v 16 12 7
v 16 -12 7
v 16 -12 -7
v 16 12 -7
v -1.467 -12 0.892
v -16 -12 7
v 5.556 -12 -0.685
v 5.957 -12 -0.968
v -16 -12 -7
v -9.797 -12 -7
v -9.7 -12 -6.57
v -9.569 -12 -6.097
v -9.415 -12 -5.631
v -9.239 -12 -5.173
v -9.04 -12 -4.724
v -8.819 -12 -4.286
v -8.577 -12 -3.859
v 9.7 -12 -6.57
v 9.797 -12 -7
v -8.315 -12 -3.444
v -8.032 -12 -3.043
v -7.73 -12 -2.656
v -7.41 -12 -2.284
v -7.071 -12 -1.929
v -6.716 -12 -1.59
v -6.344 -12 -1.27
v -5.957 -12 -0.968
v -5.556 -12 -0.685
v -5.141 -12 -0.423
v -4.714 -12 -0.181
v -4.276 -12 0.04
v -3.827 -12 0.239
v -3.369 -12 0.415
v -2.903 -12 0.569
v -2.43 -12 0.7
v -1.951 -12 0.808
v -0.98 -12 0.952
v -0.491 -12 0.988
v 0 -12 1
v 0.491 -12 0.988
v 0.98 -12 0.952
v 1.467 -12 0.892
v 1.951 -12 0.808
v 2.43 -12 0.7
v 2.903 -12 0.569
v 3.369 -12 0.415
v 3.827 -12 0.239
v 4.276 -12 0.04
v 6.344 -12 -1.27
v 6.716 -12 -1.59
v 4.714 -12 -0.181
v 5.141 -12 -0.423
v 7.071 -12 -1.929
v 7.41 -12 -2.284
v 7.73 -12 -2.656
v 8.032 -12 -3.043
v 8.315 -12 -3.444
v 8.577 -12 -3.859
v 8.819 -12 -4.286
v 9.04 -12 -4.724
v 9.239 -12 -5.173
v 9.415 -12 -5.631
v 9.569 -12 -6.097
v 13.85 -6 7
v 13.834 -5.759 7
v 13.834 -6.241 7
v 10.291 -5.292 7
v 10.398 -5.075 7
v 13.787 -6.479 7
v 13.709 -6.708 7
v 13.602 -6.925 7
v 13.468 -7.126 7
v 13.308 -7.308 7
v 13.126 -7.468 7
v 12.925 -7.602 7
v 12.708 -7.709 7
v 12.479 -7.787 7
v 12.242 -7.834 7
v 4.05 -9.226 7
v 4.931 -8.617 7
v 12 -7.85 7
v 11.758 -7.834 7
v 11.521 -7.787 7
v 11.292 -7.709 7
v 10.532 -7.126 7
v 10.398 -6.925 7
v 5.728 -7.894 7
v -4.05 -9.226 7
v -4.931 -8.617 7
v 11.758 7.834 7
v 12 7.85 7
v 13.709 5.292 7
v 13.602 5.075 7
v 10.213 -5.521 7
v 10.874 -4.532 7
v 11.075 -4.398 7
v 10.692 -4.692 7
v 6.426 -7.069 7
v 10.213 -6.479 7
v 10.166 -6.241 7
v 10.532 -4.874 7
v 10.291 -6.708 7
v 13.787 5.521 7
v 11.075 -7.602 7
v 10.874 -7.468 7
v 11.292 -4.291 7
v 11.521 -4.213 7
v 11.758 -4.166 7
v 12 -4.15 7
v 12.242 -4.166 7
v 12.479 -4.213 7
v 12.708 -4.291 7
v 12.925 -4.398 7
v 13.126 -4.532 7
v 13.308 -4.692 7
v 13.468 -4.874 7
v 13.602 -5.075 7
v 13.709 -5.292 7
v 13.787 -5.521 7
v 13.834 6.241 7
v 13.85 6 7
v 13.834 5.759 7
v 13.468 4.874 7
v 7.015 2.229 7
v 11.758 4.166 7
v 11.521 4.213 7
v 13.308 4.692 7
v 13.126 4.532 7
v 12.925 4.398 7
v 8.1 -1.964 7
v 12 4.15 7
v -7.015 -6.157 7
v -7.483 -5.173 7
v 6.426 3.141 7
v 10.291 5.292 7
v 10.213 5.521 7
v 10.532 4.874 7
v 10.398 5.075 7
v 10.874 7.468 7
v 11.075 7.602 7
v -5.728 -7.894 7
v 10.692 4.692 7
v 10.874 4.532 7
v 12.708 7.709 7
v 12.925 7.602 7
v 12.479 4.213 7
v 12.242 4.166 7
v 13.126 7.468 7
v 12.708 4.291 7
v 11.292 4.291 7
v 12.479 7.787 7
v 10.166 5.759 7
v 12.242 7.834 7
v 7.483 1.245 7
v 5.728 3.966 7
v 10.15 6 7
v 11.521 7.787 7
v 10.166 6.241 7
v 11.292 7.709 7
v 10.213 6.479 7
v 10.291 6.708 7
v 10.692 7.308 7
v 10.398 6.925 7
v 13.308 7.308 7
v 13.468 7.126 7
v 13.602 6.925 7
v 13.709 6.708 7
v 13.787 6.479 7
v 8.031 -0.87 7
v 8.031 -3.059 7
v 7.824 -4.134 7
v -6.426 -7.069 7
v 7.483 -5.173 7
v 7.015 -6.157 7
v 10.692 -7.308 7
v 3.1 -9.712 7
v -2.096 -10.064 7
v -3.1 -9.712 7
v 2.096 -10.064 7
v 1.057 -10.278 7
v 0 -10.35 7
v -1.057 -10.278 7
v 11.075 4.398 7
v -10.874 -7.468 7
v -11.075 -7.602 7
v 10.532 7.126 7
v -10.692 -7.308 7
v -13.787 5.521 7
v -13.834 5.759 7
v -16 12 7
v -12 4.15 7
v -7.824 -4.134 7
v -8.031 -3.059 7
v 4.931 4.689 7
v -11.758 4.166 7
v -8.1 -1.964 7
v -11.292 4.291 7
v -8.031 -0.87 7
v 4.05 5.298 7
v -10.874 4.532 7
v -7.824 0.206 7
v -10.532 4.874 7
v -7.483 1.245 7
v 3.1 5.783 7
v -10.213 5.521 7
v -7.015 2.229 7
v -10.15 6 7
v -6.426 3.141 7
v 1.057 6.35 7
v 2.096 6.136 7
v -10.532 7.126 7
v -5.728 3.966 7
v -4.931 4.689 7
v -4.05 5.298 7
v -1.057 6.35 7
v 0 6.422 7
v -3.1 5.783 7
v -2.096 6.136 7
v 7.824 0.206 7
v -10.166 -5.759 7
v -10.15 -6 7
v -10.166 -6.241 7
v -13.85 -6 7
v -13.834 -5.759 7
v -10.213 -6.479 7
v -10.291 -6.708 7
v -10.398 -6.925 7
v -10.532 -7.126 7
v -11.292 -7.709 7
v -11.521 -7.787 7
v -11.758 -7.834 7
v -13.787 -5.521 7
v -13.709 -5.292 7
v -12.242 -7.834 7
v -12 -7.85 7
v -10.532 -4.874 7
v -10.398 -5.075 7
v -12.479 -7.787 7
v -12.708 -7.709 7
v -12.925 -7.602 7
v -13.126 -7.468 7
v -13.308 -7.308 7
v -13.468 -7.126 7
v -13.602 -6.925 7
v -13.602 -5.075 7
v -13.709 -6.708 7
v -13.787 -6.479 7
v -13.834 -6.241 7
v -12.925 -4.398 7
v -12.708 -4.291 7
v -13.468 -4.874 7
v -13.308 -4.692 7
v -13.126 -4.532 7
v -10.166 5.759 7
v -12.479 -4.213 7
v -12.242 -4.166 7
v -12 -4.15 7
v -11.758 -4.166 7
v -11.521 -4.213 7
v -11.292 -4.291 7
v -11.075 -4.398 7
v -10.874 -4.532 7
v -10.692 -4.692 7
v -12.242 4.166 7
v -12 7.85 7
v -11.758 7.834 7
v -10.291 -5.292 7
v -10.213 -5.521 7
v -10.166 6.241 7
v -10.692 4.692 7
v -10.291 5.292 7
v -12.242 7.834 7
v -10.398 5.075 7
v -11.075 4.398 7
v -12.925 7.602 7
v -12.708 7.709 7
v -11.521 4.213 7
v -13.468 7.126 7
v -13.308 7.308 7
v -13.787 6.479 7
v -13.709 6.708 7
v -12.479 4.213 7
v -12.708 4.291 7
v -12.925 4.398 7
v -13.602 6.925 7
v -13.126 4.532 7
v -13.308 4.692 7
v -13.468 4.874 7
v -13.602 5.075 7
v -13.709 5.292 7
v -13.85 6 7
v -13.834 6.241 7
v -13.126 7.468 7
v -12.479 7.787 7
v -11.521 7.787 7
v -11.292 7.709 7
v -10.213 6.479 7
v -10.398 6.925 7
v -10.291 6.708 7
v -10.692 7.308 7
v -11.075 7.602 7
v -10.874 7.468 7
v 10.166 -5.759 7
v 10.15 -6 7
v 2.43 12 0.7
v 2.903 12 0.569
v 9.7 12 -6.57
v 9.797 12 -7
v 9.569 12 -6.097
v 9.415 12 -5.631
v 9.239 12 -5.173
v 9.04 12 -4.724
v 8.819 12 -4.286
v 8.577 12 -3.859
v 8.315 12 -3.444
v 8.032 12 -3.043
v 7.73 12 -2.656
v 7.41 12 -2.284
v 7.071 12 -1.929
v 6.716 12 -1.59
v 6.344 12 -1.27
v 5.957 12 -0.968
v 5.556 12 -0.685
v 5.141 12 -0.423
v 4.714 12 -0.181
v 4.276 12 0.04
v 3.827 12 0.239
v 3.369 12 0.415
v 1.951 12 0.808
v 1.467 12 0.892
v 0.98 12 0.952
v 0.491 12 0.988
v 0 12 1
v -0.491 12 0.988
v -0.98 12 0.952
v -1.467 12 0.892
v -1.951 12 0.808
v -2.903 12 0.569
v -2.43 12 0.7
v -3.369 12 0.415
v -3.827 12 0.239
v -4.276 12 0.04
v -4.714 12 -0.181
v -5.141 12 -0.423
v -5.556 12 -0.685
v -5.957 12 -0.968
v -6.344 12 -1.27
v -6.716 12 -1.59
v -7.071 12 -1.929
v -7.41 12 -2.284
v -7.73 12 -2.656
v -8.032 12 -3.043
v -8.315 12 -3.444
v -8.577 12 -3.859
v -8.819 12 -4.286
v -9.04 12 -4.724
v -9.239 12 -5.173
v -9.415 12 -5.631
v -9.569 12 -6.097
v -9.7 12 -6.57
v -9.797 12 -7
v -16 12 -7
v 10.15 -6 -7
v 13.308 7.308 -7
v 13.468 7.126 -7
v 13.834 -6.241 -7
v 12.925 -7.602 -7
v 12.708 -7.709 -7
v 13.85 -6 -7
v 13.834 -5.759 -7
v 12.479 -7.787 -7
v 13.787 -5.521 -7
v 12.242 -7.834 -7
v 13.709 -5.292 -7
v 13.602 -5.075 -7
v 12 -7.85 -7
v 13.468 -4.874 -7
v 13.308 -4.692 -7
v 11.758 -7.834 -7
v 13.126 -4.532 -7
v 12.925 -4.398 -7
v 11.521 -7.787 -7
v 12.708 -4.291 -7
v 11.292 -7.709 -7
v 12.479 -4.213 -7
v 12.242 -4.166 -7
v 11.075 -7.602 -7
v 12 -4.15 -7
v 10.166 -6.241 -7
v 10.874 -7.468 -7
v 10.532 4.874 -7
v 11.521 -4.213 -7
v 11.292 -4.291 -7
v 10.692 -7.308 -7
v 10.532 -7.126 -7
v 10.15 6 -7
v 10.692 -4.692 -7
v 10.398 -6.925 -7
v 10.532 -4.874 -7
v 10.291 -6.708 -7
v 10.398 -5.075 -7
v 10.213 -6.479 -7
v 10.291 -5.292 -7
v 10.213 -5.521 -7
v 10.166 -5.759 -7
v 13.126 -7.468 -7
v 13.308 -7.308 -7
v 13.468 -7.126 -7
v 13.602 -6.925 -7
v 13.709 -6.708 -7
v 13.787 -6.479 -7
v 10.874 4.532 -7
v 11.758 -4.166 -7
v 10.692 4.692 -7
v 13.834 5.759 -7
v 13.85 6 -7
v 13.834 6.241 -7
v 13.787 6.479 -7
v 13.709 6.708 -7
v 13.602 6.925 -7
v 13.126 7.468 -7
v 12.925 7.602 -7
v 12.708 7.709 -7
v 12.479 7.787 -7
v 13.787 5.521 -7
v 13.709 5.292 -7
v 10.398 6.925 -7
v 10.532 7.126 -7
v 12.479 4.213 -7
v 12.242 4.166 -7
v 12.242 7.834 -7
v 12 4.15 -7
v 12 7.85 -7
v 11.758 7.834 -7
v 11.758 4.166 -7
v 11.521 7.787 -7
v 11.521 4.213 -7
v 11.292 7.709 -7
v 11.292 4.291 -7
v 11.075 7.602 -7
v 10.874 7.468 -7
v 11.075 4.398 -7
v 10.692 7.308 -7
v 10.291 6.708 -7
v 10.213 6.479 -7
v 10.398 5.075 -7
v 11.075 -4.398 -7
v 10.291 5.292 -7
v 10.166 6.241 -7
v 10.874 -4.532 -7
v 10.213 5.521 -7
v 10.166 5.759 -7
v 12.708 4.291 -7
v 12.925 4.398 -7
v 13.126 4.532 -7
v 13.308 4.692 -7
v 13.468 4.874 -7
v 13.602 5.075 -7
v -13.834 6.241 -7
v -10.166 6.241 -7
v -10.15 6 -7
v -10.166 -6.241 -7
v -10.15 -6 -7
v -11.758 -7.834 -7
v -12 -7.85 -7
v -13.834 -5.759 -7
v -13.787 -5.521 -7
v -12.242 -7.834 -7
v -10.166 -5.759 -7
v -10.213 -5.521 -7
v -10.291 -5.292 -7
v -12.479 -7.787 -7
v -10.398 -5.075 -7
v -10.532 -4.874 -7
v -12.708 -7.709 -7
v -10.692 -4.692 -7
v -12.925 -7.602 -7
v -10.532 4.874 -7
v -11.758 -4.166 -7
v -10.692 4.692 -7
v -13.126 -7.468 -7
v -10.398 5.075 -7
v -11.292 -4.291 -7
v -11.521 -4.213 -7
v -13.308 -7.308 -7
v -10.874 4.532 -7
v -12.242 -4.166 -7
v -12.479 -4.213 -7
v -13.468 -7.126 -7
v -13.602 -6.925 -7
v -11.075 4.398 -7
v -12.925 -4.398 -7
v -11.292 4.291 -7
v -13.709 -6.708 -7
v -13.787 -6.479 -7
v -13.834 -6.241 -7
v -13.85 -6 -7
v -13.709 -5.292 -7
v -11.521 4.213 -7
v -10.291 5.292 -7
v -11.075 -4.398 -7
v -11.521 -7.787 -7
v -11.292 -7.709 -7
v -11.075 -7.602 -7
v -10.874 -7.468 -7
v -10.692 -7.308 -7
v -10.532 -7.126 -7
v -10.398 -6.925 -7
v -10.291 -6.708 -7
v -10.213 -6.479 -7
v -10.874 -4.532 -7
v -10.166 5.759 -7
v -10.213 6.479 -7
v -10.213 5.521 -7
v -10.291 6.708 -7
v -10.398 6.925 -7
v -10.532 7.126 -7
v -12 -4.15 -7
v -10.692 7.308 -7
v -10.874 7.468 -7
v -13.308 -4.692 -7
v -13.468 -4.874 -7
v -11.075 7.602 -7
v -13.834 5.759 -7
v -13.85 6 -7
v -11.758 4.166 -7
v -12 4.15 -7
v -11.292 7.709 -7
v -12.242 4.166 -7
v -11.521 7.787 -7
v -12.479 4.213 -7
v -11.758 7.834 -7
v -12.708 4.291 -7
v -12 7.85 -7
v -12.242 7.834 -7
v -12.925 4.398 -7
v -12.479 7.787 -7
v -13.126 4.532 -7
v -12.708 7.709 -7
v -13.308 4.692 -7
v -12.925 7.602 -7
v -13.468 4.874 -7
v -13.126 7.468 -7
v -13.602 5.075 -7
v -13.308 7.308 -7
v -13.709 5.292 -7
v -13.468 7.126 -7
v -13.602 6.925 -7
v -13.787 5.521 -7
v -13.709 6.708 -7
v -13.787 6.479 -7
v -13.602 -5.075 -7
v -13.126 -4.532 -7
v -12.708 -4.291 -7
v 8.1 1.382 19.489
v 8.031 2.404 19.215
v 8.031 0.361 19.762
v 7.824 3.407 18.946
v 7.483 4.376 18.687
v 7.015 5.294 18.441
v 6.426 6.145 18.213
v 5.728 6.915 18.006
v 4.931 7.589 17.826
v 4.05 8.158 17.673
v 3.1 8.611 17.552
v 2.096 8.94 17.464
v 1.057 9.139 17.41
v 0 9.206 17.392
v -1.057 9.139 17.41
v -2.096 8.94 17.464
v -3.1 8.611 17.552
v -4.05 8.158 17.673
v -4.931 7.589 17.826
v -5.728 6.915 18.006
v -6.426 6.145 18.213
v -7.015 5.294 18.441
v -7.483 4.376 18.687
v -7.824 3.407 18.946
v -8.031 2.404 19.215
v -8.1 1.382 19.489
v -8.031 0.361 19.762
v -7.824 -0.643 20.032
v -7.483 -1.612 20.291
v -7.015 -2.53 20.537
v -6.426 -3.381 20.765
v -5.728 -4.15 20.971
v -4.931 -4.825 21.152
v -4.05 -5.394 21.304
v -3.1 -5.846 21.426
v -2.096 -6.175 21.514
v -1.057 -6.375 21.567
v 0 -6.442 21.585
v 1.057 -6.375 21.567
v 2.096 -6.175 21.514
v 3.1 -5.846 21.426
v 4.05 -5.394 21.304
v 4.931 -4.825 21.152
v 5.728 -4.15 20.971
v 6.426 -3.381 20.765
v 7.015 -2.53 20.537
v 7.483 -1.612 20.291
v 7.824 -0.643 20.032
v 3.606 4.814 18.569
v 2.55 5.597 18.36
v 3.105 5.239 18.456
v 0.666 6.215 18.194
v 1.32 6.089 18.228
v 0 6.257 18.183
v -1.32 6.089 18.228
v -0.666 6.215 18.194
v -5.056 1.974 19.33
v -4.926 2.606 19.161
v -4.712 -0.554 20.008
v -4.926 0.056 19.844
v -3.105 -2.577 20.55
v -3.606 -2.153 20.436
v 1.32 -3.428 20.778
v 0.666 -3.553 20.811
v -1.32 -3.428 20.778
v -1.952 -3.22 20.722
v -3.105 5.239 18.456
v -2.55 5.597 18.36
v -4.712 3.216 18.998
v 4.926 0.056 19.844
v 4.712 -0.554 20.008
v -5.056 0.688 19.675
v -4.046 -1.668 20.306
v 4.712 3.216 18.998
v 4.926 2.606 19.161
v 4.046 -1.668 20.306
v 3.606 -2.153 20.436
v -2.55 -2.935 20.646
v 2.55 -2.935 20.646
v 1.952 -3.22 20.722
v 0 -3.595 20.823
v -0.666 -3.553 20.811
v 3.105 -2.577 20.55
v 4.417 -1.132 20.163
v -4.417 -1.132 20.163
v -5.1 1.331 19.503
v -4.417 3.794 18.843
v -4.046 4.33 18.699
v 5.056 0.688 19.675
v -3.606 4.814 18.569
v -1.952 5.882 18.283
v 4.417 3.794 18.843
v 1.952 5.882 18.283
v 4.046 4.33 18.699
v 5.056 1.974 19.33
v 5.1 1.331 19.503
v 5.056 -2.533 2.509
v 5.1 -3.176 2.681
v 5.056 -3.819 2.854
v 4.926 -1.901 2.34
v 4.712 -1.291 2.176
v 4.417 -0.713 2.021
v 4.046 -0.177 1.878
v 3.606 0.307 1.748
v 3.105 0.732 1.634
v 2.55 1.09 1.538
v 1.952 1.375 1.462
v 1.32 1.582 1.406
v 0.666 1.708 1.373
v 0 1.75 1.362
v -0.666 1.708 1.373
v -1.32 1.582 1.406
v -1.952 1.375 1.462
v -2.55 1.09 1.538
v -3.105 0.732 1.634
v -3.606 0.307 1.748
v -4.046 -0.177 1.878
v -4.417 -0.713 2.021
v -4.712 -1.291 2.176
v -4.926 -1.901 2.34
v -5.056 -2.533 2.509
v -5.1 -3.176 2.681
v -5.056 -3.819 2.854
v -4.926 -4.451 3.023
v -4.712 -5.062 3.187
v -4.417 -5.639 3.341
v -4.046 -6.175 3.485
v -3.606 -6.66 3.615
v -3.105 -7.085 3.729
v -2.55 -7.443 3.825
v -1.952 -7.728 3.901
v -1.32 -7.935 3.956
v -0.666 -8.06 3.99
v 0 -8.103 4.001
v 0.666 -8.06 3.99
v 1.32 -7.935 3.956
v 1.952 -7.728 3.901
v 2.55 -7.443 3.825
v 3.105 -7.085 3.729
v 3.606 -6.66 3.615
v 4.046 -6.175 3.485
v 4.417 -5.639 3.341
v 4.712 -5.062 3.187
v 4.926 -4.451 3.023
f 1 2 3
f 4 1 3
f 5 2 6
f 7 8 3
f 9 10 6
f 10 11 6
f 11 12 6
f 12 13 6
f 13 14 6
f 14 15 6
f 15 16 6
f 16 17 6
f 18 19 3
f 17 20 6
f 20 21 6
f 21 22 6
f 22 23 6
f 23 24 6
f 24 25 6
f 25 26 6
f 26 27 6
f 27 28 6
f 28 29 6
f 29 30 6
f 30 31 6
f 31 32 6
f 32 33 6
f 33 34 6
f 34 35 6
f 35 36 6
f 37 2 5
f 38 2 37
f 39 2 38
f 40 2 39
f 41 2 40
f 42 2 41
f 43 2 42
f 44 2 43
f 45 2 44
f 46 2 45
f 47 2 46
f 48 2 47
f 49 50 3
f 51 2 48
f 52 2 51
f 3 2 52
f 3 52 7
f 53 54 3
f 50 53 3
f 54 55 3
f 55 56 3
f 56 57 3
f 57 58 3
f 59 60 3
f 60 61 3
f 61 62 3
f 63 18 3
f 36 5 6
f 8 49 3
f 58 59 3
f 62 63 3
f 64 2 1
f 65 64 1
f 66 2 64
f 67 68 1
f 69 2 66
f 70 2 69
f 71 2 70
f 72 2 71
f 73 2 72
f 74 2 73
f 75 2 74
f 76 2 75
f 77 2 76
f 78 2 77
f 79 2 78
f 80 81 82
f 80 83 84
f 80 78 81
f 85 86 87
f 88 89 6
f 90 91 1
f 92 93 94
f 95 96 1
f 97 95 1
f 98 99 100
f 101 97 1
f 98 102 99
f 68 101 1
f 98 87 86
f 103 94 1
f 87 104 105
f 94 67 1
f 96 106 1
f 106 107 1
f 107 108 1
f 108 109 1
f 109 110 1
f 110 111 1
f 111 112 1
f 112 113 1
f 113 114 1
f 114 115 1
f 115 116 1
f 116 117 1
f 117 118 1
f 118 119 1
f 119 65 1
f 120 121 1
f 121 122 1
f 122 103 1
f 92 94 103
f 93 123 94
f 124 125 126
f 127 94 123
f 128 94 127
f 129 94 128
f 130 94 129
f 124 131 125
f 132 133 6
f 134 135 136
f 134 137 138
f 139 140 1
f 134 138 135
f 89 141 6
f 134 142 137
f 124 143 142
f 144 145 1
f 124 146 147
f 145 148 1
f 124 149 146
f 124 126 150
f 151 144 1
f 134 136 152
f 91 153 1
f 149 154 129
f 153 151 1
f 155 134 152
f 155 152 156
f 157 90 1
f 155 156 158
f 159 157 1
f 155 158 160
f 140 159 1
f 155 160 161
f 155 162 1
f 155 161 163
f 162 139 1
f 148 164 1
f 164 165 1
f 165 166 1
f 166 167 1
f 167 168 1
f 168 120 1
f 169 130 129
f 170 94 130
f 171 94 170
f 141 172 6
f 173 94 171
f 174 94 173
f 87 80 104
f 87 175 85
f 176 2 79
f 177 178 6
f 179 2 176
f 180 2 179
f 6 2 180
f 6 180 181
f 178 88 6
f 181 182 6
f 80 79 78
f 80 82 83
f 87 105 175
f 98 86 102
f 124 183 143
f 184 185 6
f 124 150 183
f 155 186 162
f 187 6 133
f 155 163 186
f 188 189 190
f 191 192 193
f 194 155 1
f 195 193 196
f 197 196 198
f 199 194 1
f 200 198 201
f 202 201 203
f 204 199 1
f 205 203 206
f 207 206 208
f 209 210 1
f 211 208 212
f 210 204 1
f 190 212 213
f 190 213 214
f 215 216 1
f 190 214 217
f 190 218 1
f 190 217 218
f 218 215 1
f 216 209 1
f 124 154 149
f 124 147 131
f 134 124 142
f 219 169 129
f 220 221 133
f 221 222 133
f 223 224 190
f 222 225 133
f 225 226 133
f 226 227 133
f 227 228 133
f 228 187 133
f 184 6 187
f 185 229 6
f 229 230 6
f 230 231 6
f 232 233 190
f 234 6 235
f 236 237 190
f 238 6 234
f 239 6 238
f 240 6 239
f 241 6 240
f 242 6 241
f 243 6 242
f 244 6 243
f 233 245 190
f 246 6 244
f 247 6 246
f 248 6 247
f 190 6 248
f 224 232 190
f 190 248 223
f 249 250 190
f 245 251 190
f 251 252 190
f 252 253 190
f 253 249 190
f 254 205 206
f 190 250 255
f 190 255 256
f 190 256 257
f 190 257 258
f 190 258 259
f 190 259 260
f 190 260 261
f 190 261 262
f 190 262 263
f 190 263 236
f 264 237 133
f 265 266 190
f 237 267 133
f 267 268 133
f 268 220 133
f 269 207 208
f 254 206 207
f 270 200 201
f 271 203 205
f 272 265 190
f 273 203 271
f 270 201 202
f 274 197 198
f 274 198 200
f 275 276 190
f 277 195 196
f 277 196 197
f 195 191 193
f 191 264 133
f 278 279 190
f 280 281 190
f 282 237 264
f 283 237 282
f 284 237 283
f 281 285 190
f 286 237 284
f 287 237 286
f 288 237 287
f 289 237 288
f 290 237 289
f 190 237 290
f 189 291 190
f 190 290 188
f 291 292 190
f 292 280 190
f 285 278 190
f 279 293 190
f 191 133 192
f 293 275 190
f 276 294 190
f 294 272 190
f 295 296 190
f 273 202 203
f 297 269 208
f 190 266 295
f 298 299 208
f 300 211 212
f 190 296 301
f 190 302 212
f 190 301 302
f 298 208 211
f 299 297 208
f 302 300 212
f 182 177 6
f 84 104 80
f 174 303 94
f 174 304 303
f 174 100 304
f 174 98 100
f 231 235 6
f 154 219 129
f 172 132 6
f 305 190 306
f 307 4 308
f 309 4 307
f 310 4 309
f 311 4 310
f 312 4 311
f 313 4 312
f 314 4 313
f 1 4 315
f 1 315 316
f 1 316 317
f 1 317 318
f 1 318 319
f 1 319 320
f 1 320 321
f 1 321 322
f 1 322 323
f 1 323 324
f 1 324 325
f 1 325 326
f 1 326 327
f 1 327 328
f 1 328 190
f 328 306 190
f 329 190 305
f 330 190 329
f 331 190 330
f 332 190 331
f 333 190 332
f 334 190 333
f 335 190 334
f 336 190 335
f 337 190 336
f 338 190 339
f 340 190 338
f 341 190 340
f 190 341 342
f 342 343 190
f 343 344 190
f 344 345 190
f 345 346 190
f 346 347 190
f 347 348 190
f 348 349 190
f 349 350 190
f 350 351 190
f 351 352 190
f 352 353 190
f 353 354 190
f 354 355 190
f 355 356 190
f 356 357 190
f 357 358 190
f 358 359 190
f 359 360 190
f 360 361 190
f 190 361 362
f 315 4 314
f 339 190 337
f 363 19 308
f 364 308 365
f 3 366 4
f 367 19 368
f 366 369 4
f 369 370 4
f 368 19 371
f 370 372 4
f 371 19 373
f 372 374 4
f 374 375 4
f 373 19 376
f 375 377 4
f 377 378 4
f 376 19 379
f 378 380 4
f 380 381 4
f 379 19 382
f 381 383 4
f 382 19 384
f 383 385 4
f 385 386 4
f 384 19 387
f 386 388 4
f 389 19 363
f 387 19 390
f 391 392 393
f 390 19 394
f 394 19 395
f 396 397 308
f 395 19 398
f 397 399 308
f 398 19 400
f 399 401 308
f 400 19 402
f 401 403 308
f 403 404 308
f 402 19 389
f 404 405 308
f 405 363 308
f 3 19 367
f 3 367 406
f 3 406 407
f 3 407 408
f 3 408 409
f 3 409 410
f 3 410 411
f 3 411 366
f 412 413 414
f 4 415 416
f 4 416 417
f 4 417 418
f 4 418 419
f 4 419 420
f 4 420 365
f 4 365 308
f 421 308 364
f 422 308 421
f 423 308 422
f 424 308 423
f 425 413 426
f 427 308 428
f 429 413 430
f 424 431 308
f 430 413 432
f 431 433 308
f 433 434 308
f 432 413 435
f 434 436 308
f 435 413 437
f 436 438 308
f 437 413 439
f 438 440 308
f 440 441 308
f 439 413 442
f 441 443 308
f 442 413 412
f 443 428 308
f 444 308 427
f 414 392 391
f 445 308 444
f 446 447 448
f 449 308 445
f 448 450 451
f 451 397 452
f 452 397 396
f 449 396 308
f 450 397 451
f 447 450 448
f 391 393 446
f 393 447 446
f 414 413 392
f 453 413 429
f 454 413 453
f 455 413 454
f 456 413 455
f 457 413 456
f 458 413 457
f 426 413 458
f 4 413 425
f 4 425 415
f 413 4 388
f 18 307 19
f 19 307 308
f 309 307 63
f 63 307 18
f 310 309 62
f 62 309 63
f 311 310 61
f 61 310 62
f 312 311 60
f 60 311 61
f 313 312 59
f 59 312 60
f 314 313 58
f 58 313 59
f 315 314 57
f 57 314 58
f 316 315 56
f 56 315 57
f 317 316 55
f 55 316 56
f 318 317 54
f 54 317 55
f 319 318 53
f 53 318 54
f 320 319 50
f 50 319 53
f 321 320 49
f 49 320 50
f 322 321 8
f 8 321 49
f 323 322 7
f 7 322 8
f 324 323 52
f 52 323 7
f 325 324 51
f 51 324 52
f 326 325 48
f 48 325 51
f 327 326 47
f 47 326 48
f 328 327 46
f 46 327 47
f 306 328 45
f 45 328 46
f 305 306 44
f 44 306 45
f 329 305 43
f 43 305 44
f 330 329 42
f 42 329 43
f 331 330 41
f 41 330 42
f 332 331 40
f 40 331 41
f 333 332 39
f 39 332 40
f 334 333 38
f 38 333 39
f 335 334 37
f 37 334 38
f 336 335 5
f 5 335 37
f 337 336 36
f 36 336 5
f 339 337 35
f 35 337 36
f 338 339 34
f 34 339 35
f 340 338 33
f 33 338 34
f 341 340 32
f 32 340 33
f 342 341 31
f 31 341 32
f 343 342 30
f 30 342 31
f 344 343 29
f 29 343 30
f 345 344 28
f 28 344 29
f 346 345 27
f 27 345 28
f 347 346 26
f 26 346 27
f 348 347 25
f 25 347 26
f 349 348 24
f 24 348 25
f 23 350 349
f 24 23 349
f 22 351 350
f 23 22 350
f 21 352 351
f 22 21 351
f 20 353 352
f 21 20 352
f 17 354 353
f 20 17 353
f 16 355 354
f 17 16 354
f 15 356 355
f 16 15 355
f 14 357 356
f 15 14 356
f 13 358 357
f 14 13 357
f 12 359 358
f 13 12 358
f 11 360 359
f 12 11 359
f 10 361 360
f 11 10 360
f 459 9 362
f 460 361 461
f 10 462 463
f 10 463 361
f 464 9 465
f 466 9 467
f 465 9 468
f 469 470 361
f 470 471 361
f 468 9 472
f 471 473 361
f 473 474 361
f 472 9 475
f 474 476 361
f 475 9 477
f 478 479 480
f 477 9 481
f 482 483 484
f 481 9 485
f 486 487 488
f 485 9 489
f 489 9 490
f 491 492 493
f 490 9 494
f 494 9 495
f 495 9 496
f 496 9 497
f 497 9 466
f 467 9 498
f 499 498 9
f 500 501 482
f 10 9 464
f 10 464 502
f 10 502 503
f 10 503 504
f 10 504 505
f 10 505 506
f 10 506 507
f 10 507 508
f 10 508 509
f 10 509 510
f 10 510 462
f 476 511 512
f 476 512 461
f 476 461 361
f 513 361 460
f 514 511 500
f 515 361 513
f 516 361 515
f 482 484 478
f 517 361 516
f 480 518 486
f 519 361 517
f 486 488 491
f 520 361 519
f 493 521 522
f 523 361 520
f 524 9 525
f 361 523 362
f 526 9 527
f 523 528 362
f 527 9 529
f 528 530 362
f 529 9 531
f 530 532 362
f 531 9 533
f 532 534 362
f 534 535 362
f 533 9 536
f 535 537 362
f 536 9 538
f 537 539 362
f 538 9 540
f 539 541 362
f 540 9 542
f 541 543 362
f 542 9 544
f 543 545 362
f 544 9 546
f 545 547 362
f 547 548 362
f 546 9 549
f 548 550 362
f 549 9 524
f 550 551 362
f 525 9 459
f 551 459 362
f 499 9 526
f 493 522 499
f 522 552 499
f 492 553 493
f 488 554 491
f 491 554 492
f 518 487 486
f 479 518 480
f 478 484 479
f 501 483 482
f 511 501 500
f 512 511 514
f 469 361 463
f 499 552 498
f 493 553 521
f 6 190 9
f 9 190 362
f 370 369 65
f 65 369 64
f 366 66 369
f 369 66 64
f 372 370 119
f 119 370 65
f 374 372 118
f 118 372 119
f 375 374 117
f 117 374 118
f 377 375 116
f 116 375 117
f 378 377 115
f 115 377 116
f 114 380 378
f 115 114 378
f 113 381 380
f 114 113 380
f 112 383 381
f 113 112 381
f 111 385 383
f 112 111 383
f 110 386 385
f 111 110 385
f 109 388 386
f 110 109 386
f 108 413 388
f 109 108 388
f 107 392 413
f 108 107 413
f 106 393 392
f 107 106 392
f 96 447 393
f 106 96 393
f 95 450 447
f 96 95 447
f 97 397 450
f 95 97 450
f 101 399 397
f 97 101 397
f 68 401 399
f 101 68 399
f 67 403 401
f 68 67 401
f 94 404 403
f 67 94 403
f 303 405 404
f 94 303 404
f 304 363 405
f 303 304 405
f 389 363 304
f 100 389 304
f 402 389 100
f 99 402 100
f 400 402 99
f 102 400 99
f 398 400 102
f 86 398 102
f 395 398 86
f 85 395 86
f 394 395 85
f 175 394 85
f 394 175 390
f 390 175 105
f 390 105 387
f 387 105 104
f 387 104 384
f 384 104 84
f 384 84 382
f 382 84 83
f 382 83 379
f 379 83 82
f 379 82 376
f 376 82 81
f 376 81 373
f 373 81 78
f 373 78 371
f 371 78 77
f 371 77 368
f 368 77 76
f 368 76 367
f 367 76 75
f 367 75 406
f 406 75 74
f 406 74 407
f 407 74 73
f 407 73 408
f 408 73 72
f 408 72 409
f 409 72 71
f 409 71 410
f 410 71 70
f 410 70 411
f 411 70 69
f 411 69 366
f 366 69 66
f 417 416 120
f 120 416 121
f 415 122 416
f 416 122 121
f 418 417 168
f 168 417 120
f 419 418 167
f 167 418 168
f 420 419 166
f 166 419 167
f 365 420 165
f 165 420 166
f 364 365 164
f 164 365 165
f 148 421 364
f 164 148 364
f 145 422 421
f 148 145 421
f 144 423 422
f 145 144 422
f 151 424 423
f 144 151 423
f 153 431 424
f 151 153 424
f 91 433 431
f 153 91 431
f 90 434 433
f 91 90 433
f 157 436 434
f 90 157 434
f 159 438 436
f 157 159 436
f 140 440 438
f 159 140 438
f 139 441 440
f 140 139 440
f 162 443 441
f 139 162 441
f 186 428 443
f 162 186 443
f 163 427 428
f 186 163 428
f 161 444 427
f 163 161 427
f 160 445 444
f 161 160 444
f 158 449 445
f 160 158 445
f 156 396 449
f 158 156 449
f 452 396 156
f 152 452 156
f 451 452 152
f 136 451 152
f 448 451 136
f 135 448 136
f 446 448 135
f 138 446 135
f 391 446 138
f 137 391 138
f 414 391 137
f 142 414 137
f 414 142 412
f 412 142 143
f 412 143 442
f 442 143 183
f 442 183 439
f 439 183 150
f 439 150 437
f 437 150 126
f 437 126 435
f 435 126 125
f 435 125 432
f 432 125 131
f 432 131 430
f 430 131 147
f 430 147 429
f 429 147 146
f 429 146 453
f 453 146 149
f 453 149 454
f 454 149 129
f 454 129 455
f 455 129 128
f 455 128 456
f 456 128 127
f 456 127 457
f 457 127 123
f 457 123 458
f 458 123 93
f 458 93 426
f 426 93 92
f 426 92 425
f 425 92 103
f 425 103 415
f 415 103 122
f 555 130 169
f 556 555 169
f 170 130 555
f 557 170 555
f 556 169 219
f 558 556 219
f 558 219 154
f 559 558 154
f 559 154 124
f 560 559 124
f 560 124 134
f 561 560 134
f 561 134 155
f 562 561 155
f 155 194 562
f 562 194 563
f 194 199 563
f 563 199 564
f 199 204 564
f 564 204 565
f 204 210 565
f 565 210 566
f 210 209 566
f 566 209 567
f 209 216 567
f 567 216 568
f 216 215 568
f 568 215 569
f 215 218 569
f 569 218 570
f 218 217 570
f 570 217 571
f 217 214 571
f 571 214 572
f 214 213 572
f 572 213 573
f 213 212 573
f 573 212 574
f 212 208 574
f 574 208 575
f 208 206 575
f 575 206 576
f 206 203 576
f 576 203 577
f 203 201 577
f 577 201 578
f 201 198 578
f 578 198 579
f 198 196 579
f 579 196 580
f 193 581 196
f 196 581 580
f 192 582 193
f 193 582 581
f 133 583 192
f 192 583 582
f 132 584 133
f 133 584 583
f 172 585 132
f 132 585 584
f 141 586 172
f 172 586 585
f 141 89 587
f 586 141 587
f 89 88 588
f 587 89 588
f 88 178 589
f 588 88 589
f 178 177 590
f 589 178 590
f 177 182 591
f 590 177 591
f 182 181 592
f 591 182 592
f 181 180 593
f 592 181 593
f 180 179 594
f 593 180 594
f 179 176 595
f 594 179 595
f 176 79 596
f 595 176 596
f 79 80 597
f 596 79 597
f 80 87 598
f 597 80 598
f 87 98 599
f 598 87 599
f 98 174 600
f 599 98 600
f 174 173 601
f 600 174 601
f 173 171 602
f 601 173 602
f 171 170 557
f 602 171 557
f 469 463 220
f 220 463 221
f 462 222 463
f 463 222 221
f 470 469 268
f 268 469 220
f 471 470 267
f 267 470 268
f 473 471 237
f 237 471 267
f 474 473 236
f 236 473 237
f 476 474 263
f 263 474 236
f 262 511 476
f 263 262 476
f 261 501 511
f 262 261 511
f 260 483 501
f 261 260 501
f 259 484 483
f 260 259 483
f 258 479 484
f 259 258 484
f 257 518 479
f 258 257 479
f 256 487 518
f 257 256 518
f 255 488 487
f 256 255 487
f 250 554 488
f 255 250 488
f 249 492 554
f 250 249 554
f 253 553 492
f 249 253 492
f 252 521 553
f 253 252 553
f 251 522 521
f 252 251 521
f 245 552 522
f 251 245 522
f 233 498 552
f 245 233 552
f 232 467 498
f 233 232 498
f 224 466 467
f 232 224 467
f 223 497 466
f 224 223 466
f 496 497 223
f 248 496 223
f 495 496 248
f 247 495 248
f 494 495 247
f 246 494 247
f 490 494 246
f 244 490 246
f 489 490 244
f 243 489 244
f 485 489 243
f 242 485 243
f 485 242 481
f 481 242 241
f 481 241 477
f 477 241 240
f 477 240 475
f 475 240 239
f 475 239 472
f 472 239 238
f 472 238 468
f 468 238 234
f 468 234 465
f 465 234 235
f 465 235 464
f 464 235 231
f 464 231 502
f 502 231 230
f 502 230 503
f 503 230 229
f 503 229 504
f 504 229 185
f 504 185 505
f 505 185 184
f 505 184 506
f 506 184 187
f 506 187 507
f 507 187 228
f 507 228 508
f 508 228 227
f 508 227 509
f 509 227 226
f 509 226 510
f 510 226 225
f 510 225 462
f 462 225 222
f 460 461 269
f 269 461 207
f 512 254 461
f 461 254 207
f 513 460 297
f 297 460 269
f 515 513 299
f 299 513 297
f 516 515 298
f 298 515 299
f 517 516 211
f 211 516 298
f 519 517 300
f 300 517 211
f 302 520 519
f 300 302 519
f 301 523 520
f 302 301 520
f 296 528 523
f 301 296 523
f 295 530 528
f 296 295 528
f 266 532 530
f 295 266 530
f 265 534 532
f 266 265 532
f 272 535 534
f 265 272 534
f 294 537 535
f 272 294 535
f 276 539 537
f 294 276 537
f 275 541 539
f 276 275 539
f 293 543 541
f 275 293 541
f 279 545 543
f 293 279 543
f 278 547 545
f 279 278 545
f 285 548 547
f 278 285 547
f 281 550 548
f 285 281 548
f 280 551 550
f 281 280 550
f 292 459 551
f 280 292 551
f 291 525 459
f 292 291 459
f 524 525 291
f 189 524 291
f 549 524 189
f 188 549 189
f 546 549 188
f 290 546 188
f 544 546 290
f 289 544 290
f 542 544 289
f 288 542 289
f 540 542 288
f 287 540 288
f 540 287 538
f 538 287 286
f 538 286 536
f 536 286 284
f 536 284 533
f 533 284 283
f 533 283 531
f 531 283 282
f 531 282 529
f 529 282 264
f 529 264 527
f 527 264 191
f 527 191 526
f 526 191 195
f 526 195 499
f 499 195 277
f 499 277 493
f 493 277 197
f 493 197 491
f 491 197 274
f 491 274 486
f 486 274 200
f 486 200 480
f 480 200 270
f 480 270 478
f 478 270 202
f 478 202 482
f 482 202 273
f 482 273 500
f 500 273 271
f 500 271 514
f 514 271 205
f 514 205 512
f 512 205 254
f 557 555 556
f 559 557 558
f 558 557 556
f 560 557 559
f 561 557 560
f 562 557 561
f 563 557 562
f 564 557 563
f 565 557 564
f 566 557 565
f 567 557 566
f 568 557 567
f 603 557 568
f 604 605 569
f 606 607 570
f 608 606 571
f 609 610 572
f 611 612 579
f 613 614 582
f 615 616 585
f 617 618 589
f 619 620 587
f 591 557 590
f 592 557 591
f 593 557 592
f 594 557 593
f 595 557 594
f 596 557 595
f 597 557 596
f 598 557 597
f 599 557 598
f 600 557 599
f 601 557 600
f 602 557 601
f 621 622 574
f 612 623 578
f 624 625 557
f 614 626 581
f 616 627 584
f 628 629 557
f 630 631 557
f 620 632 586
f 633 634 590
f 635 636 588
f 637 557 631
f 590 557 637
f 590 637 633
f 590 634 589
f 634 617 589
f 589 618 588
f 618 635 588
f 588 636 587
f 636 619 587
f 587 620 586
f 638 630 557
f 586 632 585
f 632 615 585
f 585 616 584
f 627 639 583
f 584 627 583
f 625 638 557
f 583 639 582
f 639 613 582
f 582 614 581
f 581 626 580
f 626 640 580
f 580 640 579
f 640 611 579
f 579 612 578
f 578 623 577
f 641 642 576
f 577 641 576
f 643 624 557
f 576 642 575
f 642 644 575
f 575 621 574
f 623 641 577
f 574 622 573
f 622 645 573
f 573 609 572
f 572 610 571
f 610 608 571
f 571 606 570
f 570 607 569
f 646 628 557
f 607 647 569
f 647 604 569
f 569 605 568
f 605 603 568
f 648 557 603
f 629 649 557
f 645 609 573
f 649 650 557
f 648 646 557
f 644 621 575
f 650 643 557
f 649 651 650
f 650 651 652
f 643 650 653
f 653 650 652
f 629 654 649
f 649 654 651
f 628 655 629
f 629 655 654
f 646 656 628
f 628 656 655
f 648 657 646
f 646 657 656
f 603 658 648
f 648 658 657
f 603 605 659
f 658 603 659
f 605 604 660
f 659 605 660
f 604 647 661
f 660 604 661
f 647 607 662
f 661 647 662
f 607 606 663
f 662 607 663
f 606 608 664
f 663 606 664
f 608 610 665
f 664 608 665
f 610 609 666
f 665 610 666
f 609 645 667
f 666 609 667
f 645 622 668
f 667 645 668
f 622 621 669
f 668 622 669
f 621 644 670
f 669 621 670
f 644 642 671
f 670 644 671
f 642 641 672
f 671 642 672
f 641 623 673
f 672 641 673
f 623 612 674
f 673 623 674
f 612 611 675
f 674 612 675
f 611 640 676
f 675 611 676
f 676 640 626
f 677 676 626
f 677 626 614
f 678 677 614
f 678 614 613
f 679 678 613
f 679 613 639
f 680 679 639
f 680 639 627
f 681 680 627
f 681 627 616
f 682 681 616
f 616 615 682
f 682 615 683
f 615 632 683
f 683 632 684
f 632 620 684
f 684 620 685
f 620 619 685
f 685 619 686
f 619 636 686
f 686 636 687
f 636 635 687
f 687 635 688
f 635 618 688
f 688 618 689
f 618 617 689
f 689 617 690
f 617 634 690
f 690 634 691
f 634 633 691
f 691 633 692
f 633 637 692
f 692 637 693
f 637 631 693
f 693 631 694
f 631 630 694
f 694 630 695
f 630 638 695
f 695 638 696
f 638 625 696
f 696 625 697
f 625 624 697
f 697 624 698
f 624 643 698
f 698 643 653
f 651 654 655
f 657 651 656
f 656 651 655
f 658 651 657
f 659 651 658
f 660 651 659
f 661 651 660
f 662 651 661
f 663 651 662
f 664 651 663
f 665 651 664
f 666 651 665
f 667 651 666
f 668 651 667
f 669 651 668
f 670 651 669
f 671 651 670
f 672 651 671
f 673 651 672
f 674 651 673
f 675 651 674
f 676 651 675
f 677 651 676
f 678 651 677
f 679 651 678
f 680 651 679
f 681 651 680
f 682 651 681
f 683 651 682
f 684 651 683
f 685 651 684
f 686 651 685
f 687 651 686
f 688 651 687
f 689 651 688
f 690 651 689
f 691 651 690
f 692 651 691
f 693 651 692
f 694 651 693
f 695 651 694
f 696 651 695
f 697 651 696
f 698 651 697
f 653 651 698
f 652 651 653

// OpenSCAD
module clamp_body()
{
screw_hole_r=1.85; // for 3.5mm screws
leg_rad=5.1; // for a 10mm leg 
  difference()
    {
    // main body around spar hole
    union(){
      cube([32,24,14], center=true);
      translate([0,-2.5,-5])
      rotate(15,[1,0,0])
      cylinder(h=30,r=leg_rad+3,center=true,$fn=48);
    }
    union()
      {
      translate([0,0,9])
        // main notch for spar
        rotate(90,[1,0,0])
        cylinder(h=50, r=10, center=true,$fn=128);

      // hole for leg
      translate([0,2,-22])
      rotate(15,[1,0,0])
      #cylinder(h=40,r=leg_rad,center=true,$fn=48);

      // Holes along side rails for bolting alongside spar
      translate([12,-6,-20])
      cylinder(h=40,r=screw_hole_r,centre=true,$fn=48);
      translate([-12,-6,-20])
      cylinder(h=40,r=screw_hole_r,centre=true,$fn=48);
      translate([12,6,-20])
      cylinder(h=40,r=screw_hole_r,centre=true,$fn=48);
      translate([-12,6,-20])
      cylinder(h=40,r=screw_hole_r,centre=true,$fn=48);
      
    }
  }
 
}

rotate(180,[0,1,0])
clamp_body();
